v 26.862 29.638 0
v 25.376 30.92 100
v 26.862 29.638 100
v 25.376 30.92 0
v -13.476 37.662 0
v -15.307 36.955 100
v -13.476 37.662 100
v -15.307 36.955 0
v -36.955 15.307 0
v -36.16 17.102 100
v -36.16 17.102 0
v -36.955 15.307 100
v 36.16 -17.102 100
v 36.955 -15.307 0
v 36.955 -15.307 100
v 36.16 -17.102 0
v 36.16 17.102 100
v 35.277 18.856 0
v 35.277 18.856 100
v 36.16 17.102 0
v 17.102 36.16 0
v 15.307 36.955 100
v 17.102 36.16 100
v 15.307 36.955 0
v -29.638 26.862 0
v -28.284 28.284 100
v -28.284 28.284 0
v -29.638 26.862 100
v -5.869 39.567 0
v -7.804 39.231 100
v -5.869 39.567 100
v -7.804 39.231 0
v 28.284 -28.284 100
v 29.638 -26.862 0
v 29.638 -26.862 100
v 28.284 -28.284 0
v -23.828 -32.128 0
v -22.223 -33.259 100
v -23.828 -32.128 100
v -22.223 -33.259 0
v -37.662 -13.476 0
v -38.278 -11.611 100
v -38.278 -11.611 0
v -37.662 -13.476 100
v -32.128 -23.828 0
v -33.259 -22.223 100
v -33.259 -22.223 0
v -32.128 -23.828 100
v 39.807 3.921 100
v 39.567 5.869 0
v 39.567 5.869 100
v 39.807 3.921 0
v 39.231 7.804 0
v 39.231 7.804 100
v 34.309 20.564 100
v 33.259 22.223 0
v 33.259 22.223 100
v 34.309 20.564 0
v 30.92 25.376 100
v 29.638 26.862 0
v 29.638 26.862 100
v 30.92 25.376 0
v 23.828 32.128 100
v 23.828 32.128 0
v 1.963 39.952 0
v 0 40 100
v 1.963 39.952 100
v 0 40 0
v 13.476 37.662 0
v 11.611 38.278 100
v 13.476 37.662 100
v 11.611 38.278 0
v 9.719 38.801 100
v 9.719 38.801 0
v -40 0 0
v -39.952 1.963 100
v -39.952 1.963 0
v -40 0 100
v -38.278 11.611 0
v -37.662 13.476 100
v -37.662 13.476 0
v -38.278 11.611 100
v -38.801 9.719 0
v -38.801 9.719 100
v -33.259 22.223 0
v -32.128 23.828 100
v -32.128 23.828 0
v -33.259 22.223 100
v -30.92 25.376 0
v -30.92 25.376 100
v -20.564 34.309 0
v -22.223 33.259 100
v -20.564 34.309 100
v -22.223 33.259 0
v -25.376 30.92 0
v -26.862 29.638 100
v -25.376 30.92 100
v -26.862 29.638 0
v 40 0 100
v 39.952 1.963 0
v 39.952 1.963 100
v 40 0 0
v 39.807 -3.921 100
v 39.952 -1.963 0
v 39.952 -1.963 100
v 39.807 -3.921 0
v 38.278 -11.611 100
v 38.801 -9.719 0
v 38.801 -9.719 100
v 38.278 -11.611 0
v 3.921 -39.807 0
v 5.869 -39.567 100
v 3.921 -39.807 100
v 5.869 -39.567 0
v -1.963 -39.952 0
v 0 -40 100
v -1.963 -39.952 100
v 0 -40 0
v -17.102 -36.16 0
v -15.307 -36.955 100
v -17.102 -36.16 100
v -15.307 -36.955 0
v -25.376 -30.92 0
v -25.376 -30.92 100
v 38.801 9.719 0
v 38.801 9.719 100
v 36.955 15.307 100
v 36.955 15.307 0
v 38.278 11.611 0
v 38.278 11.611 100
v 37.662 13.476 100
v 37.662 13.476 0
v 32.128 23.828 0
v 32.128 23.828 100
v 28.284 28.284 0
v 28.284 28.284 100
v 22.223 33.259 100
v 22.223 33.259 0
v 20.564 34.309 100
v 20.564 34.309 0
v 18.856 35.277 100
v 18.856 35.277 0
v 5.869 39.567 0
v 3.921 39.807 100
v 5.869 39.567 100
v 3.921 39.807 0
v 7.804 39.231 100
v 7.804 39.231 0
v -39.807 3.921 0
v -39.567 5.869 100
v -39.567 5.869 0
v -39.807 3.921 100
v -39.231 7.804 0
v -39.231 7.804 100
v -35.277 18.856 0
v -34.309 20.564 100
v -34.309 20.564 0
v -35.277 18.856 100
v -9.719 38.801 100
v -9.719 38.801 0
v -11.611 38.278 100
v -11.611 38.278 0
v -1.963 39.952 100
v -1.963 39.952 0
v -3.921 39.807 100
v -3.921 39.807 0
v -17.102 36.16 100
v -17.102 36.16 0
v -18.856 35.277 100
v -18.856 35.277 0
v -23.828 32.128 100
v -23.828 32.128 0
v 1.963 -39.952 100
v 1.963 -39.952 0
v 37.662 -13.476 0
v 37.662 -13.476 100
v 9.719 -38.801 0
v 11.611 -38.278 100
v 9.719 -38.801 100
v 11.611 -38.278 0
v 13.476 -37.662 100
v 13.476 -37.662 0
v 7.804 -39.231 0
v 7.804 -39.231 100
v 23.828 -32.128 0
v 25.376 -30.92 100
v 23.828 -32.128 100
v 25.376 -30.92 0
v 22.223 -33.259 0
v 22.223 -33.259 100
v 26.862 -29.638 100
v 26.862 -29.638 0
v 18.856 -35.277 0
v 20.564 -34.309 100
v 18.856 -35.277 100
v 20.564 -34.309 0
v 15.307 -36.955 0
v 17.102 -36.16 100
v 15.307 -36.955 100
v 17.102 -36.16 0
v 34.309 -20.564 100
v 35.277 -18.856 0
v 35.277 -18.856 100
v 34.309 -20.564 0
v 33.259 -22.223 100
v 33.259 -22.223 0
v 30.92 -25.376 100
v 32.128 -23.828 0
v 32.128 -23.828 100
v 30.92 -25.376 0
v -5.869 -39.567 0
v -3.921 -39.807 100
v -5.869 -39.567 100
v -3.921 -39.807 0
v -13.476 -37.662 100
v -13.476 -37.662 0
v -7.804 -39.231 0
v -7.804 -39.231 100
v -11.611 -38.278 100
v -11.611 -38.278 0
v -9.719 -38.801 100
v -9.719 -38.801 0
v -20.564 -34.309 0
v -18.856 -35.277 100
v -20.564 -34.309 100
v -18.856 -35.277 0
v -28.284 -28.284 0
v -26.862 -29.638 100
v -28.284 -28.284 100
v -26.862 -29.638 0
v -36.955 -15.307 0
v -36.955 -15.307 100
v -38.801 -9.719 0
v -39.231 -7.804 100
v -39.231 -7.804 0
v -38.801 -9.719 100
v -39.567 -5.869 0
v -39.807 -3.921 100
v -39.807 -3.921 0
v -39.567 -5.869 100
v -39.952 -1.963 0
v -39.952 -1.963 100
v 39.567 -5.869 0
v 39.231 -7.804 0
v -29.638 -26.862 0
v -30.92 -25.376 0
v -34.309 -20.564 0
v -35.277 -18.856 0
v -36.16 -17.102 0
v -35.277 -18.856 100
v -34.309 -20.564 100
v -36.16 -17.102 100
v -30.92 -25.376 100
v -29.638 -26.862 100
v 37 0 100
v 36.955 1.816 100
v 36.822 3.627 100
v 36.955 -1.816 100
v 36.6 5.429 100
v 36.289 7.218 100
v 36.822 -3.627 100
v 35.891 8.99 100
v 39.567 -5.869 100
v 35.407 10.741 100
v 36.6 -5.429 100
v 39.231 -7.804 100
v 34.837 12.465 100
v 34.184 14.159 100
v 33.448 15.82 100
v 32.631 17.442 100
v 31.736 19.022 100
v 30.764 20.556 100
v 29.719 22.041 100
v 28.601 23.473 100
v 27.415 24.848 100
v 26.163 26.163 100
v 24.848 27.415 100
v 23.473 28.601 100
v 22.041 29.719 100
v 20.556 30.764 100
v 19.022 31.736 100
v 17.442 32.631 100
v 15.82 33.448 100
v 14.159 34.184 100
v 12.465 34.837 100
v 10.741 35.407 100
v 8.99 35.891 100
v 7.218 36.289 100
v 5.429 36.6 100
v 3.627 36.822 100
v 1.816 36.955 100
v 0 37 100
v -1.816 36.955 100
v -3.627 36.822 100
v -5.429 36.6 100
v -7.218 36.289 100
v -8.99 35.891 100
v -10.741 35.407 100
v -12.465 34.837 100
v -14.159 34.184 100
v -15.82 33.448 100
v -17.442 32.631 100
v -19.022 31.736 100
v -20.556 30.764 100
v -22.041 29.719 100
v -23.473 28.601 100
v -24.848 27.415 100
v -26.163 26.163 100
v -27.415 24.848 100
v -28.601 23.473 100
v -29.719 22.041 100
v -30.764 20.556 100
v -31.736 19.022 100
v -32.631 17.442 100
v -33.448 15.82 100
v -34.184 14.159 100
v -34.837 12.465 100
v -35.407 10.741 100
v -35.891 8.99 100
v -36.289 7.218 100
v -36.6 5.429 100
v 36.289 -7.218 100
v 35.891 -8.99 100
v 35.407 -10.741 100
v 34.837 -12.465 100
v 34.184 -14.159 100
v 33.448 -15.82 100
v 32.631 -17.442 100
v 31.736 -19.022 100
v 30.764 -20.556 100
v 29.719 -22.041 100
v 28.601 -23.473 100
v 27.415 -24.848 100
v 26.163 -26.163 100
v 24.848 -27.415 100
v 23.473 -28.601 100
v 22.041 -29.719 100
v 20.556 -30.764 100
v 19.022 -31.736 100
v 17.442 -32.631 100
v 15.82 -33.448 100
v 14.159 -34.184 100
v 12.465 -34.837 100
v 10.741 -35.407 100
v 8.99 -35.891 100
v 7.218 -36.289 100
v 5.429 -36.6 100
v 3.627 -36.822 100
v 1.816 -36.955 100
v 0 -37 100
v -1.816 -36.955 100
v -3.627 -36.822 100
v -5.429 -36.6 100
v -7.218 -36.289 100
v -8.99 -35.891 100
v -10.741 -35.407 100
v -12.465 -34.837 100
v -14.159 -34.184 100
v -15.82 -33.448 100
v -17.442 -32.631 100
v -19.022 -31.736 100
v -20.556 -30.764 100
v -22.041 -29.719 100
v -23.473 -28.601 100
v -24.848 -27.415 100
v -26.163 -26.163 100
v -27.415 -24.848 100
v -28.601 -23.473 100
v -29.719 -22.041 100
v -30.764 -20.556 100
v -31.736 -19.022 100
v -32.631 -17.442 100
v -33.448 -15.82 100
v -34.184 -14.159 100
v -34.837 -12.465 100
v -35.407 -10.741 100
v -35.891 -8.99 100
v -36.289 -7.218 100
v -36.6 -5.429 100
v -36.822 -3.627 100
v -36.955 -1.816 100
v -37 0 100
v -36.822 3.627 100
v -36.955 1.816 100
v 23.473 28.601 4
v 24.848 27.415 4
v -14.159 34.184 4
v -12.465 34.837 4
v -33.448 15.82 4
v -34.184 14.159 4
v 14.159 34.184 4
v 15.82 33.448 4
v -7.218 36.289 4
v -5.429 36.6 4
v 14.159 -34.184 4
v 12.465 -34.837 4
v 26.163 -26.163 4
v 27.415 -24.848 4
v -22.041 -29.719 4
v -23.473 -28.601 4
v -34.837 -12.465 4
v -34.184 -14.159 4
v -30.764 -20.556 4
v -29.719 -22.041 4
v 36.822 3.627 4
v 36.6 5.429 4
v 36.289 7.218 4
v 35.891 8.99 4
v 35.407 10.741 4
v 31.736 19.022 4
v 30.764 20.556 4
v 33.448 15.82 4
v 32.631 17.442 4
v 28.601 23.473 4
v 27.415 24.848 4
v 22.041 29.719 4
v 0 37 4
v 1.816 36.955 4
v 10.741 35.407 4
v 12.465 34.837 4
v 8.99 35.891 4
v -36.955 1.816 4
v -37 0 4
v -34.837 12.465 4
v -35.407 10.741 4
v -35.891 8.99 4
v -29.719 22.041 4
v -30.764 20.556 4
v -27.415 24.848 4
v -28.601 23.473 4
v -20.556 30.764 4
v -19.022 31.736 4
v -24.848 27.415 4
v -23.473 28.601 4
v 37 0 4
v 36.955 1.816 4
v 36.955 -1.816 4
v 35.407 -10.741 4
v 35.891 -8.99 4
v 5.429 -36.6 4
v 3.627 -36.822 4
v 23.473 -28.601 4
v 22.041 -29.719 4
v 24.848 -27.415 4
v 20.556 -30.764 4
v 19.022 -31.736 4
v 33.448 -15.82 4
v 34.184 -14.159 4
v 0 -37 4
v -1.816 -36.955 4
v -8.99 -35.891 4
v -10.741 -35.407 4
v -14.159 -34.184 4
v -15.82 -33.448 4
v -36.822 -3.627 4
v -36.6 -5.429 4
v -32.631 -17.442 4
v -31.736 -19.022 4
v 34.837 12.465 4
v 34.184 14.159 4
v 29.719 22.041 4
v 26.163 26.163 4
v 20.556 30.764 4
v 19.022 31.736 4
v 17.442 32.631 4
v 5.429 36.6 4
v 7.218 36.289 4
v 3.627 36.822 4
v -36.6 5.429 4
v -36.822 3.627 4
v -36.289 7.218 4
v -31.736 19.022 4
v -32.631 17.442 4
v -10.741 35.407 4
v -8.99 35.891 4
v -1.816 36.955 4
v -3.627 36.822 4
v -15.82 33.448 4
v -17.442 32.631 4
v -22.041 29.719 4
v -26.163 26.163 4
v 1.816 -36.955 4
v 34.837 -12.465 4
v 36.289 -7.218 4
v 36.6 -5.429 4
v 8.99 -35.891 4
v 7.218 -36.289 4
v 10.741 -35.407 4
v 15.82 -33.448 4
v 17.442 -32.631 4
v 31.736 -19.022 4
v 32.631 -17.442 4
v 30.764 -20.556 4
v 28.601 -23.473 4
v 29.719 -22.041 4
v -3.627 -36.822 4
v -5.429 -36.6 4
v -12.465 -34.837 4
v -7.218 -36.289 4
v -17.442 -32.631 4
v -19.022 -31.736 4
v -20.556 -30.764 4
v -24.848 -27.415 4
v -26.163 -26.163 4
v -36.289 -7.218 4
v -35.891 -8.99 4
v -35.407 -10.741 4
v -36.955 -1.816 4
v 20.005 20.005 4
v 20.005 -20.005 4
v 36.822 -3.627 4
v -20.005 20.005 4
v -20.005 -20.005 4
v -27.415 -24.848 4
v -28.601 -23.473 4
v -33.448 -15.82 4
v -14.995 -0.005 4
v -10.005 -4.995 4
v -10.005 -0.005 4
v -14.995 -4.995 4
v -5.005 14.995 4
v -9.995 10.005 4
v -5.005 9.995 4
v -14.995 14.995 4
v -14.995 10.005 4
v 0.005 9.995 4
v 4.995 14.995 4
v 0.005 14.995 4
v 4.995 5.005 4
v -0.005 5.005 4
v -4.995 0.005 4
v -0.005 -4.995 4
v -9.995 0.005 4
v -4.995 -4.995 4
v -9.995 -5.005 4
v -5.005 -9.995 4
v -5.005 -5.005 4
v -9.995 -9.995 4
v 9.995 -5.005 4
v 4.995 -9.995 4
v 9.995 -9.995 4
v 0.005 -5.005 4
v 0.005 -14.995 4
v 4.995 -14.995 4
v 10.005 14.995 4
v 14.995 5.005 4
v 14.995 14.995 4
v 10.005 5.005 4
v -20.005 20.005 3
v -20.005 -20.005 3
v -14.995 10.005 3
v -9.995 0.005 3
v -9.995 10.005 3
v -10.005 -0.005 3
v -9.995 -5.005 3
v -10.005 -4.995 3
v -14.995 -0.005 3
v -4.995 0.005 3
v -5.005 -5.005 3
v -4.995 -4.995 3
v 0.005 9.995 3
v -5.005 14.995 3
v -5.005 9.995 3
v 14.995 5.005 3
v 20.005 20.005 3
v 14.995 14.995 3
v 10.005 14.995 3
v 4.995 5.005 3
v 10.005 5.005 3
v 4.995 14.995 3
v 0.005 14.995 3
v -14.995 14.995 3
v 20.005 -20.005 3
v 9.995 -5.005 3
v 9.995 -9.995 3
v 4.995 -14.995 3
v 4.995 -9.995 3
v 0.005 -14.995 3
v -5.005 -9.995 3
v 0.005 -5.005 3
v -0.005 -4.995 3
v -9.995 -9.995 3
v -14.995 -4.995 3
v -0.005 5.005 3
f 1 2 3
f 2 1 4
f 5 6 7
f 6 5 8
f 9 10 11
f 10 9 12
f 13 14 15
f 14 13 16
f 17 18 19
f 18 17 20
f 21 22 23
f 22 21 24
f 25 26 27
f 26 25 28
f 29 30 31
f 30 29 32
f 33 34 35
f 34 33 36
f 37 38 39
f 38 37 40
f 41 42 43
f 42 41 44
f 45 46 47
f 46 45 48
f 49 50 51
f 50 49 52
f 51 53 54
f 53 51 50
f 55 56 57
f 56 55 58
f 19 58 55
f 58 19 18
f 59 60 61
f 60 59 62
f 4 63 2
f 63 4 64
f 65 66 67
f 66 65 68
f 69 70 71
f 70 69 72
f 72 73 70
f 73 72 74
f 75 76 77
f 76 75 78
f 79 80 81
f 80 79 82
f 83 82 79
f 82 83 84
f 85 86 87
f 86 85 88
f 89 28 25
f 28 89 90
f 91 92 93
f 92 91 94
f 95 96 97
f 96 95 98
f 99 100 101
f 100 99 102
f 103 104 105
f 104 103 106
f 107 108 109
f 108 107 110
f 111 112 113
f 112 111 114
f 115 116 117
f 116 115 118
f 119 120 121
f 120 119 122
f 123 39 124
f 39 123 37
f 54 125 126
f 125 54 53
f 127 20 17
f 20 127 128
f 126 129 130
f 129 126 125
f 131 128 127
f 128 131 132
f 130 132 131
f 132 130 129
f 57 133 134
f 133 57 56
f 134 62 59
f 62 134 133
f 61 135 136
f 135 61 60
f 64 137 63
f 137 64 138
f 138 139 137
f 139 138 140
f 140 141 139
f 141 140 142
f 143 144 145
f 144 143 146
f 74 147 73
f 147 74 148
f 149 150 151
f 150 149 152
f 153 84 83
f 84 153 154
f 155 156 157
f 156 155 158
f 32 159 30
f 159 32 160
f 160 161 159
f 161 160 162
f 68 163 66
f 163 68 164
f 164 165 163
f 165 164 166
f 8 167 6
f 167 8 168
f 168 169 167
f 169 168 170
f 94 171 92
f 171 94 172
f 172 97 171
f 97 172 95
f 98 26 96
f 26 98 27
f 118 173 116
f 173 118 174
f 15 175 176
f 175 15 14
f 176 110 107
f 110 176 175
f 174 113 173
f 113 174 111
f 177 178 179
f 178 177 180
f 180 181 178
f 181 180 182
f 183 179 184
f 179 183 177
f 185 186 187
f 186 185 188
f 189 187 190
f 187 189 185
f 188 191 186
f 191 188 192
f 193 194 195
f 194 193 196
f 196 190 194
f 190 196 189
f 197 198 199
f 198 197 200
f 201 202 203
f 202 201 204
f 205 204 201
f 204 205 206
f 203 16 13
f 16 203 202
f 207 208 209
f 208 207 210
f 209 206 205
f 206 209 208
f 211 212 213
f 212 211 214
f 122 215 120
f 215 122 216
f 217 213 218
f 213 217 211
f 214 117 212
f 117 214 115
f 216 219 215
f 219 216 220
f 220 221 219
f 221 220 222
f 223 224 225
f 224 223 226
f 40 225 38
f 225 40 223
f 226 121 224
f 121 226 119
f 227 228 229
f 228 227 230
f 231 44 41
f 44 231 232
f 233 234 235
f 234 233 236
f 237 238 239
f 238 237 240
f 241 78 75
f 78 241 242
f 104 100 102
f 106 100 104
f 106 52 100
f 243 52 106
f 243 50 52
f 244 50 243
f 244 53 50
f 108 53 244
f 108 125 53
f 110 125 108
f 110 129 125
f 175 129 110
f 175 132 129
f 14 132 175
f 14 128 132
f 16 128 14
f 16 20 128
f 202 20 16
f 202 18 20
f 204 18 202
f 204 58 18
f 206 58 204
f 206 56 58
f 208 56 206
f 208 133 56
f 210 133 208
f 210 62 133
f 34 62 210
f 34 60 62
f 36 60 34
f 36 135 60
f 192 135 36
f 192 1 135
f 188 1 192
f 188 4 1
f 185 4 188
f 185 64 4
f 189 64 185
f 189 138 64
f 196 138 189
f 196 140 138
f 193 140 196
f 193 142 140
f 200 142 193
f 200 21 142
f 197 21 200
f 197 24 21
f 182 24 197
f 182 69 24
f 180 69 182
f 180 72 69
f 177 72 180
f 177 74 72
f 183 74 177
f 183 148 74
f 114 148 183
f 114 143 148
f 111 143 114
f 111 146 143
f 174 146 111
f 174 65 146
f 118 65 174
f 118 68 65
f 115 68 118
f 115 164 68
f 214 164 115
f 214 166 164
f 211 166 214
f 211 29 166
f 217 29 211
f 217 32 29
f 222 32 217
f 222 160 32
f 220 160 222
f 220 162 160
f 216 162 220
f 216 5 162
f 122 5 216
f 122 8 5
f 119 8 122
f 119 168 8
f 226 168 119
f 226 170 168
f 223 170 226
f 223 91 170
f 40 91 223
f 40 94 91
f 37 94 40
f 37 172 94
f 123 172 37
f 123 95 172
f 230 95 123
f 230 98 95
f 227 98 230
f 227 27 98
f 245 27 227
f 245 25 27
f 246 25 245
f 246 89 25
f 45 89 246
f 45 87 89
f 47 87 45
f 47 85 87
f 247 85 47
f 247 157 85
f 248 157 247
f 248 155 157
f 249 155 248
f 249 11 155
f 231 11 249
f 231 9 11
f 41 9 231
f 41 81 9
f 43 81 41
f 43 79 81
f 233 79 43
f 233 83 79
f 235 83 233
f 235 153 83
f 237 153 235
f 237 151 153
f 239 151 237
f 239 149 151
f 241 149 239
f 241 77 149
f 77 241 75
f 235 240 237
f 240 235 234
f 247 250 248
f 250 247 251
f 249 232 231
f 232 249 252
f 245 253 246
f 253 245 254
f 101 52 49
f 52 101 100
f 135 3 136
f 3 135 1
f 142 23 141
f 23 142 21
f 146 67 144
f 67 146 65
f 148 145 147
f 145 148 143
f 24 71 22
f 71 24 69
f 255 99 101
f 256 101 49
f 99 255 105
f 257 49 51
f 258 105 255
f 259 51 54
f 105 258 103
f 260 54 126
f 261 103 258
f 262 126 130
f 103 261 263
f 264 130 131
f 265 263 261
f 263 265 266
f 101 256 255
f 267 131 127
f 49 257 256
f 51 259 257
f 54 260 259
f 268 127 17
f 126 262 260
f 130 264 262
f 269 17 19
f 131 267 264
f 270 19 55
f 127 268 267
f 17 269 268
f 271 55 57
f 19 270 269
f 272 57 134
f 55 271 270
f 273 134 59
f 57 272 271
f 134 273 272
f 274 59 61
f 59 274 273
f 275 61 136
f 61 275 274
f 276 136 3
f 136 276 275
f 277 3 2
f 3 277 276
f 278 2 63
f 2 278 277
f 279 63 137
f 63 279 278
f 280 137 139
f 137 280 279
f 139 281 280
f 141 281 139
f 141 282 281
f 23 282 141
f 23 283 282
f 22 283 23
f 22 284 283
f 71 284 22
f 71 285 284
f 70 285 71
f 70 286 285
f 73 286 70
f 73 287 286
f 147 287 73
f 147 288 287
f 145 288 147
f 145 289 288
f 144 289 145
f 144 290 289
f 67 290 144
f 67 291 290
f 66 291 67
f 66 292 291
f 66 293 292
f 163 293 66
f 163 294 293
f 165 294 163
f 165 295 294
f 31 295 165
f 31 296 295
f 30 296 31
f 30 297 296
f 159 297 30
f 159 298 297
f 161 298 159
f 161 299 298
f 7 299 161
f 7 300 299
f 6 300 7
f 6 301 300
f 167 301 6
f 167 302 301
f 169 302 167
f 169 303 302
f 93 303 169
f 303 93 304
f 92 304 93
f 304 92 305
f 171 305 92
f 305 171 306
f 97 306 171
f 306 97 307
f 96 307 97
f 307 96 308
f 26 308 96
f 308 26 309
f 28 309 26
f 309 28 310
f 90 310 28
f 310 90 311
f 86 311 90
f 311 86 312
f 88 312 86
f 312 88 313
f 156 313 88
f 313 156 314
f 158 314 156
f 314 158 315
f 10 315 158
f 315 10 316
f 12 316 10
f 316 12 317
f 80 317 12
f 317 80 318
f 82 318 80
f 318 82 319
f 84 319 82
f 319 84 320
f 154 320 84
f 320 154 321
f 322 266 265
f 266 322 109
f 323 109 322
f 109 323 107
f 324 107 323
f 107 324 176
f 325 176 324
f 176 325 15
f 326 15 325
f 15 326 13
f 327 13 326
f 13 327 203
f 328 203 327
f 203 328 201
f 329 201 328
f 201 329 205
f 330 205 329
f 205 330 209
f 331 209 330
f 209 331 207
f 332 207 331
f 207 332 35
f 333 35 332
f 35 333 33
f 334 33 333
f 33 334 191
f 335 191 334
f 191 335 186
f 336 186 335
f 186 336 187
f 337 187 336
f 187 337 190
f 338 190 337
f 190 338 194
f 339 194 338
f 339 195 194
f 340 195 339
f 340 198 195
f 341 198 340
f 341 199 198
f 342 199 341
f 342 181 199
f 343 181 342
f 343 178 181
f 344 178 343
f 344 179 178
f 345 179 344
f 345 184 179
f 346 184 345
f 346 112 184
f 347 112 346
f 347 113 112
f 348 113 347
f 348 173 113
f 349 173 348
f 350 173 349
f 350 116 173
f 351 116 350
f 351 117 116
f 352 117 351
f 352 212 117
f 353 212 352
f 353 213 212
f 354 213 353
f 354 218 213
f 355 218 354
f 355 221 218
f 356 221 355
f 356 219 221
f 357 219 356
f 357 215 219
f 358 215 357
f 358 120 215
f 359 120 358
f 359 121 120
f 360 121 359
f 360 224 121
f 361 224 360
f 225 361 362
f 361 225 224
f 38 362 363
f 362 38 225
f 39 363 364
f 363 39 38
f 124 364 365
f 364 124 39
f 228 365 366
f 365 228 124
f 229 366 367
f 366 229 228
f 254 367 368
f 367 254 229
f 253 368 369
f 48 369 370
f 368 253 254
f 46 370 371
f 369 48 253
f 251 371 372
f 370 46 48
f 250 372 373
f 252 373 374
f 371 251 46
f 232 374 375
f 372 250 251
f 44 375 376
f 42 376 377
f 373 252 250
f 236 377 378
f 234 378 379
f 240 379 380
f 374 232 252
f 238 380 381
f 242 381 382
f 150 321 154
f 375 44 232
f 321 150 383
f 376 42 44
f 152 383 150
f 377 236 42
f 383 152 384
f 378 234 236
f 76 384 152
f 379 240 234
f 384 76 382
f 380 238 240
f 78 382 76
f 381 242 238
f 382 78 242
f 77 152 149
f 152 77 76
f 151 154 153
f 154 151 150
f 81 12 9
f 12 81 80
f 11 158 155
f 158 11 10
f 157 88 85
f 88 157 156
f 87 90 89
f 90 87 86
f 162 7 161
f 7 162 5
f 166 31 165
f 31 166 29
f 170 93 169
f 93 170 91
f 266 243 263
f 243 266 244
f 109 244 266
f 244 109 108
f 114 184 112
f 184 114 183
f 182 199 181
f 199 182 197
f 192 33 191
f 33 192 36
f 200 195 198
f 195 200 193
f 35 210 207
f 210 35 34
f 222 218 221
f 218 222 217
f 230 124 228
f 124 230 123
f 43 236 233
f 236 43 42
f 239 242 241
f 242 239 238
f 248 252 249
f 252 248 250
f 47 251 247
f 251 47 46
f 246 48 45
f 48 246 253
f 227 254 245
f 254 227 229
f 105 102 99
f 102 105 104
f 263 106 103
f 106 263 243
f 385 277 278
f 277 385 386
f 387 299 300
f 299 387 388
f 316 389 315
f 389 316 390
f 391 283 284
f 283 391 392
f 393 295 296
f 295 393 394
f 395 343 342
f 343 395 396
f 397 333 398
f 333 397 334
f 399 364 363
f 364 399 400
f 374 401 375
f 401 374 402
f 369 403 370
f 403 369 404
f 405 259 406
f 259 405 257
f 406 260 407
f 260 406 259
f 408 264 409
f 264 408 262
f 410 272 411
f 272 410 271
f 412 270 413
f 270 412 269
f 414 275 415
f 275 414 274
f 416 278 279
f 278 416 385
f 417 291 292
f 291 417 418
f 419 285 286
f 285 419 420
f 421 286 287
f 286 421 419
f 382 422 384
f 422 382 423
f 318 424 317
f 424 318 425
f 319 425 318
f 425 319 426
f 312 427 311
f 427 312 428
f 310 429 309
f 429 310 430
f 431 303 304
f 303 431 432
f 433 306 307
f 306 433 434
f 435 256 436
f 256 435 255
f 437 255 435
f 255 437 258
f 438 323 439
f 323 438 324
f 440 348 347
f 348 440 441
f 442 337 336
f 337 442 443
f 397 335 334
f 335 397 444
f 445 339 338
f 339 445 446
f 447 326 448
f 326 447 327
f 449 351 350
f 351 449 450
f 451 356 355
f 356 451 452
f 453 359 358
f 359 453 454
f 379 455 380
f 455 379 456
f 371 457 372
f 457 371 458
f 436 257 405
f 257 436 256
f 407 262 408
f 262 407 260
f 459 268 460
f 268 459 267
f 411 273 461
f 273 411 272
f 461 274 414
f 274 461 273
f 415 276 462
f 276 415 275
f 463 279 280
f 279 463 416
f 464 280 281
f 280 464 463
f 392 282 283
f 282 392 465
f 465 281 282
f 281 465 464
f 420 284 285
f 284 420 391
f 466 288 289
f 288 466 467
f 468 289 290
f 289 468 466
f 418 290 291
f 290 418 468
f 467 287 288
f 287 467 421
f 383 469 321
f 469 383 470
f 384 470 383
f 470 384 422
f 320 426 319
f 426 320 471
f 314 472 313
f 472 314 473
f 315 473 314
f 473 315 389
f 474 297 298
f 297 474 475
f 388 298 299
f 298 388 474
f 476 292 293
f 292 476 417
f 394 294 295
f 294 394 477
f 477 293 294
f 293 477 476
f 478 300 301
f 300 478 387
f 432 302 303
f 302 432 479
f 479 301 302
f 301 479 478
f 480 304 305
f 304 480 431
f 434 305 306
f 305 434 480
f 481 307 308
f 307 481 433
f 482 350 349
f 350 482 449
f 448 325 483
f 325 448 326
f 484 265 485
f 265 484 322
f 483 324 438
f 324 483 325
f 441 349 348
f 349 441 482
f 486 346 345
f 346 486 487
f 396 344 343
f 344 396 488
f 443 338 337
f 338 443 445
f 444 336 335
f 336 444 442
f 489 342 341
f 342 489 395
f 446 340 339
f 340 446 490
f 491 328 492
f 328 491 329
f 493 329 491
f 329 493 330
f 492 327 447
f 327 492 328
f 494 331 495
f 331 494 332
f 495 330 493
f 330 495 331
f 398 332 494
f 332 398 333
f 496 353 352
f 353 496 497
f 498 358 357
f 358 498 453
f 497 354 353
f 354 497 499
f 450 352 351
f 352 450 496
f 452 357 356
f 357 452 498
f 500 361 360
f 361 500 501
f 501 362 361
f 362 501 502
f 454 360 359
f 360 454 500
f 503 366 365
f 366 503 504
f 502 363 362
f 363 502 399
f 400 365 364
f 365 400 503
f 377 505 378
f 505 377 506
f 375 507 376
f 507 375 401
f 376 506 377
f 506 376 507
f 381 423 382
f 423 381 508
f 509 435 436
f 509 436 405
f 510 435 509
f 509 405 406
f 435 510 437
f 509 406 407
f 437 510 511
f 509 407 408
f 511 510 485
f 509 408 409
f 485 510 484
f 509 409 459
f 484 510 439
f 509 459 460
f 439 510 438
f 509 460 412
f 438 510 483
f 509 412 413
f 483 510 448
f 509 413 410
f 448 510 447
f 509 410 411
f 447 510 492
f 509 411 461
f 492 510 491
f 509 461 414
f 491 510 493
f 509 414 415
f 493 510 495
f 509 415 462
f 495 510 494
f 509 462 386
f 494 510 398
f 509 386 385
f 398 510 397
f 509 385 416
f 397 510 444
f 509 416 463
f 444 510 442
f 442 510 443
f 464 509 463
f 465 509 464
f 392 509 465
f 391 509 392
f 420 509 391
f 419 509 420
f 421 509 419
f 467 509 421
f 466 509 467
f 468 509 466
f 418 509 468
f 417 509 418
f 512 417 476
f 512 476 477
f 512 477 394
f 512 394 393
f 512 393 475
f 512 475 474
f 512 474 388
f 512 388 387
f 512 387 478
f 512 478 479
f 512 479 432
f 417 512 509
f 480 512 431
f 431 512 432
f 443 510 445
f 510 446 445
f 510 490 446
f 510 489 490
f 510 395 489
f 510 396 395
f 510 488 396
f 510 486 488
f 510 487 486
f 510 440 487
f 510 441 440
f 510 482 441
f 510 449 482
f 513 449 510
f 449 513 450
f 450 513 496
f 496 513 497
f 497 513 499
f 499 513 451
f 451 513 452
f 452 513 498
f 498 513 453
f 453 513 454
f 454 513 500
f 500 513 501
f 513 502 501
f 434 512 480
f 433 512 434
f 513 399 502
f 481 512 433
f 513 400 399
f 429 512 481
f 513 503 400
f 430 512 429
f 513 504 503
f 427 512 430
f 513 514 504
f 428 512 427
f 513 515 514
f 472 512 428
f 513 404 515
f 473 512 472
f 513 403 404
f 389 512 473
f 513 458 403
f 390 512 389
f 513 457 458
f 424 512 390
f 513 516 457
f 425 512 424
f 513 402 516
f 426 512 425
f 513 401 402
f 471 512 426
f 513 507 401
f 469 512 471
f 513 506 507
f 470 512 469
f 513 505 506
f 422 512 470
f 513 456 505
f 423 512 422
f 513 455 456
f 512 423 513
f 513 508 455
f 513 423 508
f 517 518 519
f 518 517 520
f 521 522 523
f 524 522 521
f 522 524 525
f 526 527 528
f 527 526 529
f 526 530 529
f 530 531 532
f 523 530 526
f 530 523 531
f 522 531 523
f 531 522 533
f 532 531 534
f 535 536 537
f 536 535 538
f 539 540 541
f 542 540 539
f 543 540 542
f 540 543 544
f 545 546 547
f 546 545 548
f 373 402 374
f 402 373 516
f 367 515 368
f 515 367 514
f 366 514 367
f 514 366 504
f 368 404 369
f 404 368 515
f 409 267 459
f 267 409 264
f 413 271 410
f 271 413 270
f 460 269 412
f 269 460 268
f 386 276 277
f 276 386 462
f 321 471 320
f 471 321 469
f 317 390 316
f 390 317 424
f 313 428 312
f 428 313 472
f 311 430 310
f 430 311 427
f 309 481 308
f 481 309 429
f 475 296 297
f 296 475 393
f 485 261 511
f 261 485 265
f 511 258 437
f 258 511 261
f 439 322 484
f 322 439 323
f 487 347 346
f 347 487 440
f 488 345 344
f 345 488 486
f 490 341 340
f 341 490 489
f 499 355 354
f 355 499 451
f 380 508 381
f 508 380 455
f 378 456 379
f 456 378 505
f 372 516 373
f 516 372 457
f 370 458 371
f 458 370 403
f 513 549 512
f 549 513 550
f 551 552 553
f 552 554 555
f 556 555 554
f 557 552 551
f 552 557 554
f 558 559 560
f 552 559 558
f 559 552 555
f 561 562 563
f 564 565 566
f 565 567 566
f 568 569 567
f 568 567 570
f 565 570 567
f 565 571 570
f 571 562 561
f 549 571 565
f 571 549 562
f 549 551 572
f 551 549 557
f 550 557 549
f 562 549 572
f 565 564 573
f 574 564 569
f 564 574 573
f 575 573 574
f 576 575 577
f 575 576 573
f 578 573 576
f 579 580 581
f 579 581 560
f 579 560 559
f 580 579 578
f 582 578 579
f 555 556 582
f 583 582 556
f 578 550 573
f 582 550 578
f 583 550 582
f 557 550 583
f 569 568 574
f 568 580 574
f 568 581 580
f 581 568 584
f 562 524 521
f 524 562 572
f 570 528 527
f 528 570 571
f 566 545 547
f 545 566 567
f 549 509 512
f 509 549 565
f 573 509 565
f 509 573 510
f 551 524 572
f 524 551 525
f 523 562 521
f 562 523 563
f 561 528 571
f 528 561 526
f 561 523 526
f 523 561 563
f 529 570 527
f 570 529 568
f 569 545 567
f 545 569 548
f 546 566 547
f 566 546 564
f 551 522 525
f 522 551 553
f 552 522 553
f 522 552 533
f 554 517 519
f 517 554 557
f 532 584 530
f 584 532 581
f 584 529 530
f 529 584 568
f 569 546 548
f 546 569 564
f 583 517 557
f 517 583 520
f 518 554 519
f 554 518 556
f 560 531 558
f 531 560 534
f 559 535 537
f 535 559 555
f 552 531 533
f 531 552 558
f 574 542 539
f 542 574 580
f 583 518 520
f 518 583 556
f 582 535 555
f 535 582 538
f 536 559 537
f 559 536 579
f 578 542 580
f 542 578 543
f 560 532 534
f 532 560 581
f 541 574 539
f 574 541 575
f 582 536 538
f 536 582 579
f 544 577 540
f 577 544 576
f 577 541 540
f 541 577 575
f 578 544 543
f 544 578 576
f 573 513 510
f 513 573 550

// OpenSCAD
// AprilTag mug: straight cylindrical cup with tag36h11 ID0 engraved on inside floor.
// Bit pattern pulled from AprilRobotics/apriltag-imgs/tag36h11/tag36_11_00000.png (verified, not hand-guessed).

cup_od          = 80;   // outer diameter, mm
cup_height      = 100;  // mm
wall            = 3;    // straight wall thickness, mm
floor_thickness = 4;    // mm
tag_size        = 40;   // overall span of the 8x8 tag (border+data), mm
engrave_depth   = 1;    // mm, recessed into the inside floor
$fn = 128;

// tag36h11 id0, 8x8 grid = 1-module black border + 6x6 payload. 1 = black = recessed.
tag = [
  [1,1,1,1,1,1,1,1],
  [1,0,0,1,0,1,0,1],
  [1,1,0,0,0,1,0,1],
  [1,1,0,0,1,1,1,1],
  [1,0,1,0,1,1,1,1],
  [1,1,0,1,0,0,1,1],
  [1,1,1,1,0,1,1,1],
  [1,1,1,1,1,1,1,1],
];

module cup_shell() {
  difference() {
    cylinder(h = cup_height, d = cup_od);
    translate([0, 0, floor_thickness])
      cylinder(h = cup_height, d = cup_od - 2 * wall);
  }
}

module tag_recess() {
  m = tag_size / 8;
  cut_h = engrave_depth + 0.1; // small overlap past the top face, avoids z-fighting
  for (row = [0:7])
    for (col = [0:7])
      if (tag[row][col] == 1)
        translate([
          (col - 3.5) * m,
          (3.5 - row) * m,
          floor_thickness - engrave_depth / 2 + 0.05
        ])
          cube([m + 0.01, m + 0.01, cut_h], center = true);
}

difference() {
  cup_shell();
  tag_recess();
}
